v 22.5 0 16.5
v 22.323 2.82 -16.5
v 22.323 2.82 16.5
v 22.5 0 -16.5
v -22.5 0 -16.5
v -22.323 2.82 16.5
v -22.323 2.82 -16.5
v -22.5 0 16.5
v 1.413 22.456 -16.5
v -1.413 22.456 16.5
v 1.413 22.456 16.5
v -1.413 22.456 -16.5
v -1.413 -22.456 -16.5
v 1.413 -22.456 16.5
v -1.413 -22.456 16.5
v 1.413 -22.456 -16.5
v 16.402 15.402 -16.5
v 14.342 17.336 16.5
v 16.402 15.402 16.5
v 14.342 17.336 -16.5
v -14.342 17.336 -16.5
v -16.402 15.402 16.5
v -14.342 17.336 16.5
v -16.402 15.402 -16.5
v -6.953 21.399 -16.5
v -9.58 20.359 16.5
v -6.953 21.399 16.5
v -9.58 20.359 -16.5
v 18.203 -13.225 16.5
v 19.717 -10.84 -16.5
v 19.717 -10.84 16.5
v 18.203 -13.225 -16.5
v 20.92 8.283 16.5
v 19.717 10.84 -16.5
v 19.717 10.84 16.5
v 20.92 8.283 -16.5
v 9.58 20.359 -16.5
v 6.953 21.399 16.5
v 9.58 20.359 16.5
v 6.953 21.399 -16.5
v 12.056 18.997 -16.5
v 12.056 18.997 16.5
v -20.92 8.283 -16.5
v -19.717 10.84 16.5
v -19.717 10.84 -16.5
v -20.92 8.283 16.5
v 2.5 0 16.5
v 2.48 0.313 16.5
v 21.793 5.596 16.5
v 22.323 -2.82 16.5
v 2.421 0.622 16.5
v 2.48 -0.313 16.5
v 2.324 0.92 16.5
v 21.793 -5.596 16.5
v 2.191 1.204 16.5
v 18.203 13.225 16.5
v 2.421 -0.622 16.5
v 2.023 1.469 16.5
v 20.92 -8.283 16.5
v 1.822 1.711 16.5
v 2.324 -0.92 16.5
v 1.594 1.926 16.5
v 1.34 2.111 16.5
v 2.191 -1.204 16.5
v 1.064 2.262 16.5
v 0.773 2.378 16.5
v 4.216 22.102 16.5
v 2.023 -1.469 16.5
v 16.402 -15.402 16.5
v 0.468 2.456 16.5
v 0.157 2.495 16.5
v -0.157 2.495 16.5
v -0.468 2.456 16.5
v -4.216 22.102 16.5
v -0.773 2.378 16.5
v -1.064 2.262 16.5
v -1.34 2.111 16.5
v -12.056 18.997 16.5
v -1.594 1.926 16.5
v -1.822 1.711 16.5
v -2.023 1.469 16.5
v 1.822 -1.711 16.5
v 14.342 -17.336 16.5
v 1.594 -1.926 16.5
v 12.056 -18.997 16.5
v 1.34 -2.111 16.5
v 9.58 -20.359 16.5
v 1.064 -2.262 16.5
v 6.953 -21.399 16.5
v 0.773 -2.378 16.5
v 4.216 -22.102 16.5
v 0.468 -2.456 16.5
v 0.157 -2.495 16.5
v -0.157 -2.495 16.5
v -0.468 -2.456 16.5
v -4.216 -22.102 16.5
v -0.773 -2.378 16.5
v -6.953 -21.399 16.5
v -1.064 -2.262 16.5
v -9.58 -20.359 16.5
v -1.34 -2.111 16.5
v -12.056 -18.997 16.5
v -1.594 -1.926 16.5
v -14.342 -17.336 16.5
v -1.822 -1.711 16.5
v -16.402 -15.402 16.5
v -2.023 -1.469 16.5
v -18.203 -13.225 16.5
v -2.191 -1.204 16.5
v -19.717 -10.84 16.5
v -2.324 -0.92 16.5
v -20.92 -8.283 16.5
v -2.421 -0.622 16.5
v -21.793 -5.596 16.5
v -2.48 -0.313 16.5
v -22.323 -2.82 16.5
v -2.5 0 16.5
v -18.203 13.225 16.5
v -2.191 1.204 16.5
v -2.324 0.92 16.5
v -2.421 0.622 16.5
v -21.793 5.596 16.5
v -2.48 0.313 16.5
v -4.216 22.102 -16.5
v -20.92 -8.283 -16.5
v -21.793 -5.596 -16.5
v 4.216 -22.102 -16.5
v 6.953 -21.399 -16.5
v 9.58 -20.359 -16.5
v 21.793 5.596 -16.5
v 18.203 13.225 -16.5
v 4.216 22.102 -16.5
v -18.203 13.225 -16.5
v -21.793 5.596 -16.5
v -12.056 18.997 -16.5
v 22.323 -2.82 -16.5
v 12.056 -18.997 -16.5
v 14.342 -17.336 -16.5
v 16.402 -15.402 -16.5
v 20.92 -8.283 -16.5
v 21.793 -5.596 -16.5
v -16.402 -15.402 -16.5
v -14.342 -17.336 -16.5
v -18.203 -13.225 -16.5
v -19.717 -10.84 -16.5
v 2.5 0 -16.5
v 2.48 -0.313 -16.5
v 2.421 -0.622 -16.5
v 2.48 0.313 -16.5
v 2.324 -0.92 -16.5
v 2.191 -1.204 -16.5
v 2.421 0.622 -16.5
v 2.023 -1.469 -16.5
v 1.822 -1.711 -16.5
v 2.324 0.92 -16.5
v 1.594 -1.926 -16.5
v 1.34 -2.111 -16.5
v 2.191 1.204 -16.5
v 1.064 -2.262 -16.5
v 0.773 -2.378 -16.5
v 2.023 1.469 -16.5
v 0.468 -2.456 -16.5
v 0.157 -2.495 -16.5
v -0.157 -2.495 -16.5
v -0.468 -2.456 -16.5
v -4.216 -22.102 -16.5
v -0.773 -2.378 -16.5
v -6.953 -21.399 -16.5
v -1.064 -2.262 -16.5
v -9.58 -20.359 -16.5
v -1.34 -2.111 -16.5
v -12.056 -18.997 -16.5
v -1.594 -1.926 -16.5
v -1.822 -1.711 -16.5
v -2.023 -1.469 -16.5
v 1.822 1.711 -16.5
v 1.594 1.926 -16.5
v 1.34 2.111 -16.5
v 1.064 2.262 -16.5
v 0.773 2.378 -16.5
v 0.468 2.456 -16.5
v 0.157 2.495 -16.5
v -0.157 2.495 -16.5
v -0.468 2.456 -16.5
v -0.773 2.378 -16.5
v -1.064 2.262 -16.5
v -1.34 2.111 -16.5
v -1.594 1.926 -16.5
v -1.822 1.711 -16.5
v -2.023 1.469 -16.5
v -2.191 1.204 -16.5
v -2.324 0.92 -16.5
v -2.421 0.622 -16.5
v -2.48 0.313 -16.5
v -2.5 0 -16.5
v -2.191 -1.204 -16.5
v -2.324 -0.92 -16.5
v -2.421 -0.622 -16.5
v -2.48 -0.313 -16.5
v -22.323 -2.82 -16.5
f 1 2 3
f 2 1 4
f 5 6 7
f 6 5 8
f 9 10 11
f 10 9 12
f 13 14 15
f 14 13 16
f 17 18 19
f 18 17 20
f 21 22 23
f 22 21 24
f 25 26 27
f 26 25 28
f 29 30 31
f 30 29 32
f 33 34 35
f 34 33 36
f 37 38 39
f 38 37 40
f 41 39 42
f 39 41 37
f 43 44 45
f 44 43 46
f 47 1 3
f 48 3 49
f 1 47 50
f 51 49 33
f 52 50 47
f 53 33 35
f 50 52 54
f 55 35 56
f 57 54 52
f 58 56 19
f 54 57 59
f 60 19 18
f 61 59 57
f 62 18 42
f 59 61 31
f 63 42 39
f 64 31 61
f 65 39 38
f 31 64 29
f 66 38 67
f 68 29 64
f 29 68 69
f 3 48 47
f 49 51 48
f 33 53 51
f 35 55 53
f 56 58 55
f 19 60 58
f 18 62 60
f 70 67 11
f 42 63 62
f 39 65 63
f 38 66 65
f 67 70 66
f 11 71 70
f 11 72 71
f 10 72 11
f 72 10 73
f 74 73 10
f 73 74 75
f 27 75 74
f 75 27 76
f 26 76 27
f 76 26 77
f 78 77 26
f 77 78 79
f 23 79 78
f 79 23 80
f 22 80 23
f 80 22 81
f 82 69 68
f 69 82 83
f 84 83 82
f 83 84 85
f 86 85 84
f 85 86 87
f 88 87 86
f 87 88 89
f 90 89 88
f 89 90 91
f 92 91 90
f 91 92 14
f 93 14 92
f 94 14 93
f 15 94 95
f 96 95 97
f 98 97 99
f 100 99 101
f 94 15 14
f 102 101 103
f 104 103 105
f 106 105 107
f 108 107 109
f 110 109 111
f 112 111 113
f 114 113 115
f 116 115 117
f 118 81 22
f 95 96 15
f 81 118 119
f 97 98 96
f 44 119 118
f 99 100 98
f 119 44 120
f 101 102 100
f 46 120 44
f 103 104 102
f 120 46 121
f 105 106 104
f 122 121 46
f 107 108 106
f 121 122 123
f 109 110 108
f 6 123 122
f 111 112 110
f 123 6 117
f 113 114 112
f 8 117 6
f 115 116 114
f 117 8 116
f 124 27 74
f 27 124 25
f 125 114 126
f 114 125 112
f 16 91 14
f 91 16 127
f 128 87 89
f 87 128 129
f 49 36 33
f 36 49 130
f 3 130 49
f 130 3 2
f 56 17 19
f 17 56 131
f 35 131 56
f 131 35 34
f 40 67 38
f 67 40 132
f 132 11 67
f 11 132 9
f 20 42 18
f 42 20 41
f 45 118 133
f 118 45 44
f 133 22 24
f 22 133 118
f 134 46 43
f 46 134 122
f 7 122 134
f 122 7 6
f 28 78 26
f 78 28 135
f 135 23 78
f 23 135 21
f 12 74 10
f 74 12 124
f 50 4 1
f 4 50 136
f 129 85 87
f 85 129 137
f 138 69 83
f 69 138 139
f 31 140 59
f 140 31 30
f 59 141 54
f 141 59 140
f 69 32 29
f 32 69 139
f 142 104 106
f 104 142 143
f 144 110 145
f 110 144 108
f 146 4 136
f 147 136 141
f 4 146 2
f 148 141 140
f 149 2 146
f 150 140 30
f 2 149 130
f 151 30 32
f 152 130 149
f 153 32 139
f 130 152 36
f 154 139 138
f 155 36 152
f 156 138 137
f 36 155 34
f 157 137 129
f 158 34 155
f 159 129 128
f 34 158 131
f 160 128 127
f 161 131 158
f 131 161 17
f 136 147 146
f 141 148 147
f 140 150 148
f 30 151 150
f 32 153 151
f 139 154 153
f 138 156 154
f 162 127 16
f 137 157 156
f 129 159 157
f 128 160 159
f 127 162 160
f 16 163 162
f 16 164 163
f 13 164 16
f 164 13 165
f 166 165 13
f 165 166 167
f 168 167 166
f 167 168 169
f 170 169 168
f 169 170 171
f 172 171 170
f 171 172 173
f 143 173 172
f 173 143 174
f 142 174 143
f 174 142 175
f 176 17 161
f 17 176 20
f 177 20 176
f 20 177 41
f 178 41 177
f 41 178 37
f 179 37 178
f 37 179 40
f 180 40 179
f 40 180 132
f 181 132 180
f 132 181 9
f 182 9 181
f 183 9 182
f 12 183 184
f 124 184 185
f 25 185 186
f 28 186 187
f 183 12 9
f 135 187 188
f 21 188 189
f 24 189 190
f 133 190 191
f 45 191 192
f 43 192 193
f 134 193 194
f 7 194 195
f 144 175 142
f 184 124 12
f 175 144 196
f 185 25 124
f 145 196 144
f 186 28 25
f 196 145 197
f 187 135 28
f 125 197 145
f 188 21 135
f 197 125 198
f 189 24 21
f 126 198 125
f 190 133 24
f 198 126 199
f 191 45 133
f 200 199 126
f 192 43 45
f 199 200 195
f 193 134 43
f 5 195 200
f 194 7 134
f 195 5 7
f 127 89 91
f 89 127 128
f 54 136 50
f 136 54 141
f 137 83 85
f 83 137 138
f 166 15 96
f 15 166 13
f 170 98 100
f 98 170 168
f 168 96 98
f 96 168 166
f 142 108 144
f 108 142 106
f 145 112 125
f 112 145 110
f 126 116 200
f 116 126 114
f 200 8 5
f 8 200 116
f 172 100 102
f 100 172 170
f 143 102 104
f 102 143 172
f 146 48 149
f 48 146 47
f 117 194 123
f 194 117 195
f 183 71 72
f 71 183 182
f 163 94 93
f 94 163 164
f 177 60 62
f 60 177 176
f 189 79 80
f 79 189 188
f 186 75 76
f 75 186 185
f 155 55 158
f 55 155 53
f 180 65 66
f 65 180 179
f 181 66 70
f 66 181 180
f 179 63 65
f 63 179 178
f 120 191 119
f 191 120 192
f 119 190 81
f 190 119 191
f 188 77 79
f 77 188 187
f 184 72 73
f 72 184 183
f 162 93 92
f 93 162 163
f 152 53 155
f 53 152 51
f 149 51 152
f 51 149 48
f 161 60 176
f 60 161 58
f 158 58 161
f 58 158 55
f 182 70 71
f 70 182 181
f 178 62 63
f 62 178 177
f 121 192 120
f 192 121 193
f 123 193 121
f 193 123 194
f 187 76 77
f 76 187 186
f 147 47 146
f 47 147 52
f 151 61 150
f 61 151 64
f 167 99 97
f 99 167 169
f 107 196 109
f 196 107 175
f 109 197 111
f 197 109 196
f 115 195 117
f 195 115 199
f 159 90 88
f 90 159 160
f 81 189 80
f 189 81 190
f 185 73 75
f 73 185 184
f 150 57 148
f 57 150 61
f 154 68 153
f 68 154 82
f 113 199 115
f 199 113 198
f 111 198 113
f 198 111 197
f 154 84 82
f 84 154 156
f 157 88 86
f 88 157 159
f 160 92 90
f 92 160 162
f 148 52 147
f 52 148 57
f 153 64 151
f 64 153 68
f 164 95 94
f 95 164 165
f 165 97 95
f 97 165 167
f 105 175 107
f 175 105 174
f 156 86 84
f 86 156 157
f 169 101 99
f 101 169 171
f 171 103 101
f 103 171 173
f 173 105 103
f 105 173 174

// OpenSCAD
$fn = 50;


difference() {
	union() {
		translate(v = [0, 0, -16.5000000000]) {
			cylinder(h = 33, r = 22.5000000000);
		}
	}
	union() {
		translate(v = [0, 0, -100.0000000000]) {
			cylinder(h = 200, r = 2.5000000000);
		}
	}
}
